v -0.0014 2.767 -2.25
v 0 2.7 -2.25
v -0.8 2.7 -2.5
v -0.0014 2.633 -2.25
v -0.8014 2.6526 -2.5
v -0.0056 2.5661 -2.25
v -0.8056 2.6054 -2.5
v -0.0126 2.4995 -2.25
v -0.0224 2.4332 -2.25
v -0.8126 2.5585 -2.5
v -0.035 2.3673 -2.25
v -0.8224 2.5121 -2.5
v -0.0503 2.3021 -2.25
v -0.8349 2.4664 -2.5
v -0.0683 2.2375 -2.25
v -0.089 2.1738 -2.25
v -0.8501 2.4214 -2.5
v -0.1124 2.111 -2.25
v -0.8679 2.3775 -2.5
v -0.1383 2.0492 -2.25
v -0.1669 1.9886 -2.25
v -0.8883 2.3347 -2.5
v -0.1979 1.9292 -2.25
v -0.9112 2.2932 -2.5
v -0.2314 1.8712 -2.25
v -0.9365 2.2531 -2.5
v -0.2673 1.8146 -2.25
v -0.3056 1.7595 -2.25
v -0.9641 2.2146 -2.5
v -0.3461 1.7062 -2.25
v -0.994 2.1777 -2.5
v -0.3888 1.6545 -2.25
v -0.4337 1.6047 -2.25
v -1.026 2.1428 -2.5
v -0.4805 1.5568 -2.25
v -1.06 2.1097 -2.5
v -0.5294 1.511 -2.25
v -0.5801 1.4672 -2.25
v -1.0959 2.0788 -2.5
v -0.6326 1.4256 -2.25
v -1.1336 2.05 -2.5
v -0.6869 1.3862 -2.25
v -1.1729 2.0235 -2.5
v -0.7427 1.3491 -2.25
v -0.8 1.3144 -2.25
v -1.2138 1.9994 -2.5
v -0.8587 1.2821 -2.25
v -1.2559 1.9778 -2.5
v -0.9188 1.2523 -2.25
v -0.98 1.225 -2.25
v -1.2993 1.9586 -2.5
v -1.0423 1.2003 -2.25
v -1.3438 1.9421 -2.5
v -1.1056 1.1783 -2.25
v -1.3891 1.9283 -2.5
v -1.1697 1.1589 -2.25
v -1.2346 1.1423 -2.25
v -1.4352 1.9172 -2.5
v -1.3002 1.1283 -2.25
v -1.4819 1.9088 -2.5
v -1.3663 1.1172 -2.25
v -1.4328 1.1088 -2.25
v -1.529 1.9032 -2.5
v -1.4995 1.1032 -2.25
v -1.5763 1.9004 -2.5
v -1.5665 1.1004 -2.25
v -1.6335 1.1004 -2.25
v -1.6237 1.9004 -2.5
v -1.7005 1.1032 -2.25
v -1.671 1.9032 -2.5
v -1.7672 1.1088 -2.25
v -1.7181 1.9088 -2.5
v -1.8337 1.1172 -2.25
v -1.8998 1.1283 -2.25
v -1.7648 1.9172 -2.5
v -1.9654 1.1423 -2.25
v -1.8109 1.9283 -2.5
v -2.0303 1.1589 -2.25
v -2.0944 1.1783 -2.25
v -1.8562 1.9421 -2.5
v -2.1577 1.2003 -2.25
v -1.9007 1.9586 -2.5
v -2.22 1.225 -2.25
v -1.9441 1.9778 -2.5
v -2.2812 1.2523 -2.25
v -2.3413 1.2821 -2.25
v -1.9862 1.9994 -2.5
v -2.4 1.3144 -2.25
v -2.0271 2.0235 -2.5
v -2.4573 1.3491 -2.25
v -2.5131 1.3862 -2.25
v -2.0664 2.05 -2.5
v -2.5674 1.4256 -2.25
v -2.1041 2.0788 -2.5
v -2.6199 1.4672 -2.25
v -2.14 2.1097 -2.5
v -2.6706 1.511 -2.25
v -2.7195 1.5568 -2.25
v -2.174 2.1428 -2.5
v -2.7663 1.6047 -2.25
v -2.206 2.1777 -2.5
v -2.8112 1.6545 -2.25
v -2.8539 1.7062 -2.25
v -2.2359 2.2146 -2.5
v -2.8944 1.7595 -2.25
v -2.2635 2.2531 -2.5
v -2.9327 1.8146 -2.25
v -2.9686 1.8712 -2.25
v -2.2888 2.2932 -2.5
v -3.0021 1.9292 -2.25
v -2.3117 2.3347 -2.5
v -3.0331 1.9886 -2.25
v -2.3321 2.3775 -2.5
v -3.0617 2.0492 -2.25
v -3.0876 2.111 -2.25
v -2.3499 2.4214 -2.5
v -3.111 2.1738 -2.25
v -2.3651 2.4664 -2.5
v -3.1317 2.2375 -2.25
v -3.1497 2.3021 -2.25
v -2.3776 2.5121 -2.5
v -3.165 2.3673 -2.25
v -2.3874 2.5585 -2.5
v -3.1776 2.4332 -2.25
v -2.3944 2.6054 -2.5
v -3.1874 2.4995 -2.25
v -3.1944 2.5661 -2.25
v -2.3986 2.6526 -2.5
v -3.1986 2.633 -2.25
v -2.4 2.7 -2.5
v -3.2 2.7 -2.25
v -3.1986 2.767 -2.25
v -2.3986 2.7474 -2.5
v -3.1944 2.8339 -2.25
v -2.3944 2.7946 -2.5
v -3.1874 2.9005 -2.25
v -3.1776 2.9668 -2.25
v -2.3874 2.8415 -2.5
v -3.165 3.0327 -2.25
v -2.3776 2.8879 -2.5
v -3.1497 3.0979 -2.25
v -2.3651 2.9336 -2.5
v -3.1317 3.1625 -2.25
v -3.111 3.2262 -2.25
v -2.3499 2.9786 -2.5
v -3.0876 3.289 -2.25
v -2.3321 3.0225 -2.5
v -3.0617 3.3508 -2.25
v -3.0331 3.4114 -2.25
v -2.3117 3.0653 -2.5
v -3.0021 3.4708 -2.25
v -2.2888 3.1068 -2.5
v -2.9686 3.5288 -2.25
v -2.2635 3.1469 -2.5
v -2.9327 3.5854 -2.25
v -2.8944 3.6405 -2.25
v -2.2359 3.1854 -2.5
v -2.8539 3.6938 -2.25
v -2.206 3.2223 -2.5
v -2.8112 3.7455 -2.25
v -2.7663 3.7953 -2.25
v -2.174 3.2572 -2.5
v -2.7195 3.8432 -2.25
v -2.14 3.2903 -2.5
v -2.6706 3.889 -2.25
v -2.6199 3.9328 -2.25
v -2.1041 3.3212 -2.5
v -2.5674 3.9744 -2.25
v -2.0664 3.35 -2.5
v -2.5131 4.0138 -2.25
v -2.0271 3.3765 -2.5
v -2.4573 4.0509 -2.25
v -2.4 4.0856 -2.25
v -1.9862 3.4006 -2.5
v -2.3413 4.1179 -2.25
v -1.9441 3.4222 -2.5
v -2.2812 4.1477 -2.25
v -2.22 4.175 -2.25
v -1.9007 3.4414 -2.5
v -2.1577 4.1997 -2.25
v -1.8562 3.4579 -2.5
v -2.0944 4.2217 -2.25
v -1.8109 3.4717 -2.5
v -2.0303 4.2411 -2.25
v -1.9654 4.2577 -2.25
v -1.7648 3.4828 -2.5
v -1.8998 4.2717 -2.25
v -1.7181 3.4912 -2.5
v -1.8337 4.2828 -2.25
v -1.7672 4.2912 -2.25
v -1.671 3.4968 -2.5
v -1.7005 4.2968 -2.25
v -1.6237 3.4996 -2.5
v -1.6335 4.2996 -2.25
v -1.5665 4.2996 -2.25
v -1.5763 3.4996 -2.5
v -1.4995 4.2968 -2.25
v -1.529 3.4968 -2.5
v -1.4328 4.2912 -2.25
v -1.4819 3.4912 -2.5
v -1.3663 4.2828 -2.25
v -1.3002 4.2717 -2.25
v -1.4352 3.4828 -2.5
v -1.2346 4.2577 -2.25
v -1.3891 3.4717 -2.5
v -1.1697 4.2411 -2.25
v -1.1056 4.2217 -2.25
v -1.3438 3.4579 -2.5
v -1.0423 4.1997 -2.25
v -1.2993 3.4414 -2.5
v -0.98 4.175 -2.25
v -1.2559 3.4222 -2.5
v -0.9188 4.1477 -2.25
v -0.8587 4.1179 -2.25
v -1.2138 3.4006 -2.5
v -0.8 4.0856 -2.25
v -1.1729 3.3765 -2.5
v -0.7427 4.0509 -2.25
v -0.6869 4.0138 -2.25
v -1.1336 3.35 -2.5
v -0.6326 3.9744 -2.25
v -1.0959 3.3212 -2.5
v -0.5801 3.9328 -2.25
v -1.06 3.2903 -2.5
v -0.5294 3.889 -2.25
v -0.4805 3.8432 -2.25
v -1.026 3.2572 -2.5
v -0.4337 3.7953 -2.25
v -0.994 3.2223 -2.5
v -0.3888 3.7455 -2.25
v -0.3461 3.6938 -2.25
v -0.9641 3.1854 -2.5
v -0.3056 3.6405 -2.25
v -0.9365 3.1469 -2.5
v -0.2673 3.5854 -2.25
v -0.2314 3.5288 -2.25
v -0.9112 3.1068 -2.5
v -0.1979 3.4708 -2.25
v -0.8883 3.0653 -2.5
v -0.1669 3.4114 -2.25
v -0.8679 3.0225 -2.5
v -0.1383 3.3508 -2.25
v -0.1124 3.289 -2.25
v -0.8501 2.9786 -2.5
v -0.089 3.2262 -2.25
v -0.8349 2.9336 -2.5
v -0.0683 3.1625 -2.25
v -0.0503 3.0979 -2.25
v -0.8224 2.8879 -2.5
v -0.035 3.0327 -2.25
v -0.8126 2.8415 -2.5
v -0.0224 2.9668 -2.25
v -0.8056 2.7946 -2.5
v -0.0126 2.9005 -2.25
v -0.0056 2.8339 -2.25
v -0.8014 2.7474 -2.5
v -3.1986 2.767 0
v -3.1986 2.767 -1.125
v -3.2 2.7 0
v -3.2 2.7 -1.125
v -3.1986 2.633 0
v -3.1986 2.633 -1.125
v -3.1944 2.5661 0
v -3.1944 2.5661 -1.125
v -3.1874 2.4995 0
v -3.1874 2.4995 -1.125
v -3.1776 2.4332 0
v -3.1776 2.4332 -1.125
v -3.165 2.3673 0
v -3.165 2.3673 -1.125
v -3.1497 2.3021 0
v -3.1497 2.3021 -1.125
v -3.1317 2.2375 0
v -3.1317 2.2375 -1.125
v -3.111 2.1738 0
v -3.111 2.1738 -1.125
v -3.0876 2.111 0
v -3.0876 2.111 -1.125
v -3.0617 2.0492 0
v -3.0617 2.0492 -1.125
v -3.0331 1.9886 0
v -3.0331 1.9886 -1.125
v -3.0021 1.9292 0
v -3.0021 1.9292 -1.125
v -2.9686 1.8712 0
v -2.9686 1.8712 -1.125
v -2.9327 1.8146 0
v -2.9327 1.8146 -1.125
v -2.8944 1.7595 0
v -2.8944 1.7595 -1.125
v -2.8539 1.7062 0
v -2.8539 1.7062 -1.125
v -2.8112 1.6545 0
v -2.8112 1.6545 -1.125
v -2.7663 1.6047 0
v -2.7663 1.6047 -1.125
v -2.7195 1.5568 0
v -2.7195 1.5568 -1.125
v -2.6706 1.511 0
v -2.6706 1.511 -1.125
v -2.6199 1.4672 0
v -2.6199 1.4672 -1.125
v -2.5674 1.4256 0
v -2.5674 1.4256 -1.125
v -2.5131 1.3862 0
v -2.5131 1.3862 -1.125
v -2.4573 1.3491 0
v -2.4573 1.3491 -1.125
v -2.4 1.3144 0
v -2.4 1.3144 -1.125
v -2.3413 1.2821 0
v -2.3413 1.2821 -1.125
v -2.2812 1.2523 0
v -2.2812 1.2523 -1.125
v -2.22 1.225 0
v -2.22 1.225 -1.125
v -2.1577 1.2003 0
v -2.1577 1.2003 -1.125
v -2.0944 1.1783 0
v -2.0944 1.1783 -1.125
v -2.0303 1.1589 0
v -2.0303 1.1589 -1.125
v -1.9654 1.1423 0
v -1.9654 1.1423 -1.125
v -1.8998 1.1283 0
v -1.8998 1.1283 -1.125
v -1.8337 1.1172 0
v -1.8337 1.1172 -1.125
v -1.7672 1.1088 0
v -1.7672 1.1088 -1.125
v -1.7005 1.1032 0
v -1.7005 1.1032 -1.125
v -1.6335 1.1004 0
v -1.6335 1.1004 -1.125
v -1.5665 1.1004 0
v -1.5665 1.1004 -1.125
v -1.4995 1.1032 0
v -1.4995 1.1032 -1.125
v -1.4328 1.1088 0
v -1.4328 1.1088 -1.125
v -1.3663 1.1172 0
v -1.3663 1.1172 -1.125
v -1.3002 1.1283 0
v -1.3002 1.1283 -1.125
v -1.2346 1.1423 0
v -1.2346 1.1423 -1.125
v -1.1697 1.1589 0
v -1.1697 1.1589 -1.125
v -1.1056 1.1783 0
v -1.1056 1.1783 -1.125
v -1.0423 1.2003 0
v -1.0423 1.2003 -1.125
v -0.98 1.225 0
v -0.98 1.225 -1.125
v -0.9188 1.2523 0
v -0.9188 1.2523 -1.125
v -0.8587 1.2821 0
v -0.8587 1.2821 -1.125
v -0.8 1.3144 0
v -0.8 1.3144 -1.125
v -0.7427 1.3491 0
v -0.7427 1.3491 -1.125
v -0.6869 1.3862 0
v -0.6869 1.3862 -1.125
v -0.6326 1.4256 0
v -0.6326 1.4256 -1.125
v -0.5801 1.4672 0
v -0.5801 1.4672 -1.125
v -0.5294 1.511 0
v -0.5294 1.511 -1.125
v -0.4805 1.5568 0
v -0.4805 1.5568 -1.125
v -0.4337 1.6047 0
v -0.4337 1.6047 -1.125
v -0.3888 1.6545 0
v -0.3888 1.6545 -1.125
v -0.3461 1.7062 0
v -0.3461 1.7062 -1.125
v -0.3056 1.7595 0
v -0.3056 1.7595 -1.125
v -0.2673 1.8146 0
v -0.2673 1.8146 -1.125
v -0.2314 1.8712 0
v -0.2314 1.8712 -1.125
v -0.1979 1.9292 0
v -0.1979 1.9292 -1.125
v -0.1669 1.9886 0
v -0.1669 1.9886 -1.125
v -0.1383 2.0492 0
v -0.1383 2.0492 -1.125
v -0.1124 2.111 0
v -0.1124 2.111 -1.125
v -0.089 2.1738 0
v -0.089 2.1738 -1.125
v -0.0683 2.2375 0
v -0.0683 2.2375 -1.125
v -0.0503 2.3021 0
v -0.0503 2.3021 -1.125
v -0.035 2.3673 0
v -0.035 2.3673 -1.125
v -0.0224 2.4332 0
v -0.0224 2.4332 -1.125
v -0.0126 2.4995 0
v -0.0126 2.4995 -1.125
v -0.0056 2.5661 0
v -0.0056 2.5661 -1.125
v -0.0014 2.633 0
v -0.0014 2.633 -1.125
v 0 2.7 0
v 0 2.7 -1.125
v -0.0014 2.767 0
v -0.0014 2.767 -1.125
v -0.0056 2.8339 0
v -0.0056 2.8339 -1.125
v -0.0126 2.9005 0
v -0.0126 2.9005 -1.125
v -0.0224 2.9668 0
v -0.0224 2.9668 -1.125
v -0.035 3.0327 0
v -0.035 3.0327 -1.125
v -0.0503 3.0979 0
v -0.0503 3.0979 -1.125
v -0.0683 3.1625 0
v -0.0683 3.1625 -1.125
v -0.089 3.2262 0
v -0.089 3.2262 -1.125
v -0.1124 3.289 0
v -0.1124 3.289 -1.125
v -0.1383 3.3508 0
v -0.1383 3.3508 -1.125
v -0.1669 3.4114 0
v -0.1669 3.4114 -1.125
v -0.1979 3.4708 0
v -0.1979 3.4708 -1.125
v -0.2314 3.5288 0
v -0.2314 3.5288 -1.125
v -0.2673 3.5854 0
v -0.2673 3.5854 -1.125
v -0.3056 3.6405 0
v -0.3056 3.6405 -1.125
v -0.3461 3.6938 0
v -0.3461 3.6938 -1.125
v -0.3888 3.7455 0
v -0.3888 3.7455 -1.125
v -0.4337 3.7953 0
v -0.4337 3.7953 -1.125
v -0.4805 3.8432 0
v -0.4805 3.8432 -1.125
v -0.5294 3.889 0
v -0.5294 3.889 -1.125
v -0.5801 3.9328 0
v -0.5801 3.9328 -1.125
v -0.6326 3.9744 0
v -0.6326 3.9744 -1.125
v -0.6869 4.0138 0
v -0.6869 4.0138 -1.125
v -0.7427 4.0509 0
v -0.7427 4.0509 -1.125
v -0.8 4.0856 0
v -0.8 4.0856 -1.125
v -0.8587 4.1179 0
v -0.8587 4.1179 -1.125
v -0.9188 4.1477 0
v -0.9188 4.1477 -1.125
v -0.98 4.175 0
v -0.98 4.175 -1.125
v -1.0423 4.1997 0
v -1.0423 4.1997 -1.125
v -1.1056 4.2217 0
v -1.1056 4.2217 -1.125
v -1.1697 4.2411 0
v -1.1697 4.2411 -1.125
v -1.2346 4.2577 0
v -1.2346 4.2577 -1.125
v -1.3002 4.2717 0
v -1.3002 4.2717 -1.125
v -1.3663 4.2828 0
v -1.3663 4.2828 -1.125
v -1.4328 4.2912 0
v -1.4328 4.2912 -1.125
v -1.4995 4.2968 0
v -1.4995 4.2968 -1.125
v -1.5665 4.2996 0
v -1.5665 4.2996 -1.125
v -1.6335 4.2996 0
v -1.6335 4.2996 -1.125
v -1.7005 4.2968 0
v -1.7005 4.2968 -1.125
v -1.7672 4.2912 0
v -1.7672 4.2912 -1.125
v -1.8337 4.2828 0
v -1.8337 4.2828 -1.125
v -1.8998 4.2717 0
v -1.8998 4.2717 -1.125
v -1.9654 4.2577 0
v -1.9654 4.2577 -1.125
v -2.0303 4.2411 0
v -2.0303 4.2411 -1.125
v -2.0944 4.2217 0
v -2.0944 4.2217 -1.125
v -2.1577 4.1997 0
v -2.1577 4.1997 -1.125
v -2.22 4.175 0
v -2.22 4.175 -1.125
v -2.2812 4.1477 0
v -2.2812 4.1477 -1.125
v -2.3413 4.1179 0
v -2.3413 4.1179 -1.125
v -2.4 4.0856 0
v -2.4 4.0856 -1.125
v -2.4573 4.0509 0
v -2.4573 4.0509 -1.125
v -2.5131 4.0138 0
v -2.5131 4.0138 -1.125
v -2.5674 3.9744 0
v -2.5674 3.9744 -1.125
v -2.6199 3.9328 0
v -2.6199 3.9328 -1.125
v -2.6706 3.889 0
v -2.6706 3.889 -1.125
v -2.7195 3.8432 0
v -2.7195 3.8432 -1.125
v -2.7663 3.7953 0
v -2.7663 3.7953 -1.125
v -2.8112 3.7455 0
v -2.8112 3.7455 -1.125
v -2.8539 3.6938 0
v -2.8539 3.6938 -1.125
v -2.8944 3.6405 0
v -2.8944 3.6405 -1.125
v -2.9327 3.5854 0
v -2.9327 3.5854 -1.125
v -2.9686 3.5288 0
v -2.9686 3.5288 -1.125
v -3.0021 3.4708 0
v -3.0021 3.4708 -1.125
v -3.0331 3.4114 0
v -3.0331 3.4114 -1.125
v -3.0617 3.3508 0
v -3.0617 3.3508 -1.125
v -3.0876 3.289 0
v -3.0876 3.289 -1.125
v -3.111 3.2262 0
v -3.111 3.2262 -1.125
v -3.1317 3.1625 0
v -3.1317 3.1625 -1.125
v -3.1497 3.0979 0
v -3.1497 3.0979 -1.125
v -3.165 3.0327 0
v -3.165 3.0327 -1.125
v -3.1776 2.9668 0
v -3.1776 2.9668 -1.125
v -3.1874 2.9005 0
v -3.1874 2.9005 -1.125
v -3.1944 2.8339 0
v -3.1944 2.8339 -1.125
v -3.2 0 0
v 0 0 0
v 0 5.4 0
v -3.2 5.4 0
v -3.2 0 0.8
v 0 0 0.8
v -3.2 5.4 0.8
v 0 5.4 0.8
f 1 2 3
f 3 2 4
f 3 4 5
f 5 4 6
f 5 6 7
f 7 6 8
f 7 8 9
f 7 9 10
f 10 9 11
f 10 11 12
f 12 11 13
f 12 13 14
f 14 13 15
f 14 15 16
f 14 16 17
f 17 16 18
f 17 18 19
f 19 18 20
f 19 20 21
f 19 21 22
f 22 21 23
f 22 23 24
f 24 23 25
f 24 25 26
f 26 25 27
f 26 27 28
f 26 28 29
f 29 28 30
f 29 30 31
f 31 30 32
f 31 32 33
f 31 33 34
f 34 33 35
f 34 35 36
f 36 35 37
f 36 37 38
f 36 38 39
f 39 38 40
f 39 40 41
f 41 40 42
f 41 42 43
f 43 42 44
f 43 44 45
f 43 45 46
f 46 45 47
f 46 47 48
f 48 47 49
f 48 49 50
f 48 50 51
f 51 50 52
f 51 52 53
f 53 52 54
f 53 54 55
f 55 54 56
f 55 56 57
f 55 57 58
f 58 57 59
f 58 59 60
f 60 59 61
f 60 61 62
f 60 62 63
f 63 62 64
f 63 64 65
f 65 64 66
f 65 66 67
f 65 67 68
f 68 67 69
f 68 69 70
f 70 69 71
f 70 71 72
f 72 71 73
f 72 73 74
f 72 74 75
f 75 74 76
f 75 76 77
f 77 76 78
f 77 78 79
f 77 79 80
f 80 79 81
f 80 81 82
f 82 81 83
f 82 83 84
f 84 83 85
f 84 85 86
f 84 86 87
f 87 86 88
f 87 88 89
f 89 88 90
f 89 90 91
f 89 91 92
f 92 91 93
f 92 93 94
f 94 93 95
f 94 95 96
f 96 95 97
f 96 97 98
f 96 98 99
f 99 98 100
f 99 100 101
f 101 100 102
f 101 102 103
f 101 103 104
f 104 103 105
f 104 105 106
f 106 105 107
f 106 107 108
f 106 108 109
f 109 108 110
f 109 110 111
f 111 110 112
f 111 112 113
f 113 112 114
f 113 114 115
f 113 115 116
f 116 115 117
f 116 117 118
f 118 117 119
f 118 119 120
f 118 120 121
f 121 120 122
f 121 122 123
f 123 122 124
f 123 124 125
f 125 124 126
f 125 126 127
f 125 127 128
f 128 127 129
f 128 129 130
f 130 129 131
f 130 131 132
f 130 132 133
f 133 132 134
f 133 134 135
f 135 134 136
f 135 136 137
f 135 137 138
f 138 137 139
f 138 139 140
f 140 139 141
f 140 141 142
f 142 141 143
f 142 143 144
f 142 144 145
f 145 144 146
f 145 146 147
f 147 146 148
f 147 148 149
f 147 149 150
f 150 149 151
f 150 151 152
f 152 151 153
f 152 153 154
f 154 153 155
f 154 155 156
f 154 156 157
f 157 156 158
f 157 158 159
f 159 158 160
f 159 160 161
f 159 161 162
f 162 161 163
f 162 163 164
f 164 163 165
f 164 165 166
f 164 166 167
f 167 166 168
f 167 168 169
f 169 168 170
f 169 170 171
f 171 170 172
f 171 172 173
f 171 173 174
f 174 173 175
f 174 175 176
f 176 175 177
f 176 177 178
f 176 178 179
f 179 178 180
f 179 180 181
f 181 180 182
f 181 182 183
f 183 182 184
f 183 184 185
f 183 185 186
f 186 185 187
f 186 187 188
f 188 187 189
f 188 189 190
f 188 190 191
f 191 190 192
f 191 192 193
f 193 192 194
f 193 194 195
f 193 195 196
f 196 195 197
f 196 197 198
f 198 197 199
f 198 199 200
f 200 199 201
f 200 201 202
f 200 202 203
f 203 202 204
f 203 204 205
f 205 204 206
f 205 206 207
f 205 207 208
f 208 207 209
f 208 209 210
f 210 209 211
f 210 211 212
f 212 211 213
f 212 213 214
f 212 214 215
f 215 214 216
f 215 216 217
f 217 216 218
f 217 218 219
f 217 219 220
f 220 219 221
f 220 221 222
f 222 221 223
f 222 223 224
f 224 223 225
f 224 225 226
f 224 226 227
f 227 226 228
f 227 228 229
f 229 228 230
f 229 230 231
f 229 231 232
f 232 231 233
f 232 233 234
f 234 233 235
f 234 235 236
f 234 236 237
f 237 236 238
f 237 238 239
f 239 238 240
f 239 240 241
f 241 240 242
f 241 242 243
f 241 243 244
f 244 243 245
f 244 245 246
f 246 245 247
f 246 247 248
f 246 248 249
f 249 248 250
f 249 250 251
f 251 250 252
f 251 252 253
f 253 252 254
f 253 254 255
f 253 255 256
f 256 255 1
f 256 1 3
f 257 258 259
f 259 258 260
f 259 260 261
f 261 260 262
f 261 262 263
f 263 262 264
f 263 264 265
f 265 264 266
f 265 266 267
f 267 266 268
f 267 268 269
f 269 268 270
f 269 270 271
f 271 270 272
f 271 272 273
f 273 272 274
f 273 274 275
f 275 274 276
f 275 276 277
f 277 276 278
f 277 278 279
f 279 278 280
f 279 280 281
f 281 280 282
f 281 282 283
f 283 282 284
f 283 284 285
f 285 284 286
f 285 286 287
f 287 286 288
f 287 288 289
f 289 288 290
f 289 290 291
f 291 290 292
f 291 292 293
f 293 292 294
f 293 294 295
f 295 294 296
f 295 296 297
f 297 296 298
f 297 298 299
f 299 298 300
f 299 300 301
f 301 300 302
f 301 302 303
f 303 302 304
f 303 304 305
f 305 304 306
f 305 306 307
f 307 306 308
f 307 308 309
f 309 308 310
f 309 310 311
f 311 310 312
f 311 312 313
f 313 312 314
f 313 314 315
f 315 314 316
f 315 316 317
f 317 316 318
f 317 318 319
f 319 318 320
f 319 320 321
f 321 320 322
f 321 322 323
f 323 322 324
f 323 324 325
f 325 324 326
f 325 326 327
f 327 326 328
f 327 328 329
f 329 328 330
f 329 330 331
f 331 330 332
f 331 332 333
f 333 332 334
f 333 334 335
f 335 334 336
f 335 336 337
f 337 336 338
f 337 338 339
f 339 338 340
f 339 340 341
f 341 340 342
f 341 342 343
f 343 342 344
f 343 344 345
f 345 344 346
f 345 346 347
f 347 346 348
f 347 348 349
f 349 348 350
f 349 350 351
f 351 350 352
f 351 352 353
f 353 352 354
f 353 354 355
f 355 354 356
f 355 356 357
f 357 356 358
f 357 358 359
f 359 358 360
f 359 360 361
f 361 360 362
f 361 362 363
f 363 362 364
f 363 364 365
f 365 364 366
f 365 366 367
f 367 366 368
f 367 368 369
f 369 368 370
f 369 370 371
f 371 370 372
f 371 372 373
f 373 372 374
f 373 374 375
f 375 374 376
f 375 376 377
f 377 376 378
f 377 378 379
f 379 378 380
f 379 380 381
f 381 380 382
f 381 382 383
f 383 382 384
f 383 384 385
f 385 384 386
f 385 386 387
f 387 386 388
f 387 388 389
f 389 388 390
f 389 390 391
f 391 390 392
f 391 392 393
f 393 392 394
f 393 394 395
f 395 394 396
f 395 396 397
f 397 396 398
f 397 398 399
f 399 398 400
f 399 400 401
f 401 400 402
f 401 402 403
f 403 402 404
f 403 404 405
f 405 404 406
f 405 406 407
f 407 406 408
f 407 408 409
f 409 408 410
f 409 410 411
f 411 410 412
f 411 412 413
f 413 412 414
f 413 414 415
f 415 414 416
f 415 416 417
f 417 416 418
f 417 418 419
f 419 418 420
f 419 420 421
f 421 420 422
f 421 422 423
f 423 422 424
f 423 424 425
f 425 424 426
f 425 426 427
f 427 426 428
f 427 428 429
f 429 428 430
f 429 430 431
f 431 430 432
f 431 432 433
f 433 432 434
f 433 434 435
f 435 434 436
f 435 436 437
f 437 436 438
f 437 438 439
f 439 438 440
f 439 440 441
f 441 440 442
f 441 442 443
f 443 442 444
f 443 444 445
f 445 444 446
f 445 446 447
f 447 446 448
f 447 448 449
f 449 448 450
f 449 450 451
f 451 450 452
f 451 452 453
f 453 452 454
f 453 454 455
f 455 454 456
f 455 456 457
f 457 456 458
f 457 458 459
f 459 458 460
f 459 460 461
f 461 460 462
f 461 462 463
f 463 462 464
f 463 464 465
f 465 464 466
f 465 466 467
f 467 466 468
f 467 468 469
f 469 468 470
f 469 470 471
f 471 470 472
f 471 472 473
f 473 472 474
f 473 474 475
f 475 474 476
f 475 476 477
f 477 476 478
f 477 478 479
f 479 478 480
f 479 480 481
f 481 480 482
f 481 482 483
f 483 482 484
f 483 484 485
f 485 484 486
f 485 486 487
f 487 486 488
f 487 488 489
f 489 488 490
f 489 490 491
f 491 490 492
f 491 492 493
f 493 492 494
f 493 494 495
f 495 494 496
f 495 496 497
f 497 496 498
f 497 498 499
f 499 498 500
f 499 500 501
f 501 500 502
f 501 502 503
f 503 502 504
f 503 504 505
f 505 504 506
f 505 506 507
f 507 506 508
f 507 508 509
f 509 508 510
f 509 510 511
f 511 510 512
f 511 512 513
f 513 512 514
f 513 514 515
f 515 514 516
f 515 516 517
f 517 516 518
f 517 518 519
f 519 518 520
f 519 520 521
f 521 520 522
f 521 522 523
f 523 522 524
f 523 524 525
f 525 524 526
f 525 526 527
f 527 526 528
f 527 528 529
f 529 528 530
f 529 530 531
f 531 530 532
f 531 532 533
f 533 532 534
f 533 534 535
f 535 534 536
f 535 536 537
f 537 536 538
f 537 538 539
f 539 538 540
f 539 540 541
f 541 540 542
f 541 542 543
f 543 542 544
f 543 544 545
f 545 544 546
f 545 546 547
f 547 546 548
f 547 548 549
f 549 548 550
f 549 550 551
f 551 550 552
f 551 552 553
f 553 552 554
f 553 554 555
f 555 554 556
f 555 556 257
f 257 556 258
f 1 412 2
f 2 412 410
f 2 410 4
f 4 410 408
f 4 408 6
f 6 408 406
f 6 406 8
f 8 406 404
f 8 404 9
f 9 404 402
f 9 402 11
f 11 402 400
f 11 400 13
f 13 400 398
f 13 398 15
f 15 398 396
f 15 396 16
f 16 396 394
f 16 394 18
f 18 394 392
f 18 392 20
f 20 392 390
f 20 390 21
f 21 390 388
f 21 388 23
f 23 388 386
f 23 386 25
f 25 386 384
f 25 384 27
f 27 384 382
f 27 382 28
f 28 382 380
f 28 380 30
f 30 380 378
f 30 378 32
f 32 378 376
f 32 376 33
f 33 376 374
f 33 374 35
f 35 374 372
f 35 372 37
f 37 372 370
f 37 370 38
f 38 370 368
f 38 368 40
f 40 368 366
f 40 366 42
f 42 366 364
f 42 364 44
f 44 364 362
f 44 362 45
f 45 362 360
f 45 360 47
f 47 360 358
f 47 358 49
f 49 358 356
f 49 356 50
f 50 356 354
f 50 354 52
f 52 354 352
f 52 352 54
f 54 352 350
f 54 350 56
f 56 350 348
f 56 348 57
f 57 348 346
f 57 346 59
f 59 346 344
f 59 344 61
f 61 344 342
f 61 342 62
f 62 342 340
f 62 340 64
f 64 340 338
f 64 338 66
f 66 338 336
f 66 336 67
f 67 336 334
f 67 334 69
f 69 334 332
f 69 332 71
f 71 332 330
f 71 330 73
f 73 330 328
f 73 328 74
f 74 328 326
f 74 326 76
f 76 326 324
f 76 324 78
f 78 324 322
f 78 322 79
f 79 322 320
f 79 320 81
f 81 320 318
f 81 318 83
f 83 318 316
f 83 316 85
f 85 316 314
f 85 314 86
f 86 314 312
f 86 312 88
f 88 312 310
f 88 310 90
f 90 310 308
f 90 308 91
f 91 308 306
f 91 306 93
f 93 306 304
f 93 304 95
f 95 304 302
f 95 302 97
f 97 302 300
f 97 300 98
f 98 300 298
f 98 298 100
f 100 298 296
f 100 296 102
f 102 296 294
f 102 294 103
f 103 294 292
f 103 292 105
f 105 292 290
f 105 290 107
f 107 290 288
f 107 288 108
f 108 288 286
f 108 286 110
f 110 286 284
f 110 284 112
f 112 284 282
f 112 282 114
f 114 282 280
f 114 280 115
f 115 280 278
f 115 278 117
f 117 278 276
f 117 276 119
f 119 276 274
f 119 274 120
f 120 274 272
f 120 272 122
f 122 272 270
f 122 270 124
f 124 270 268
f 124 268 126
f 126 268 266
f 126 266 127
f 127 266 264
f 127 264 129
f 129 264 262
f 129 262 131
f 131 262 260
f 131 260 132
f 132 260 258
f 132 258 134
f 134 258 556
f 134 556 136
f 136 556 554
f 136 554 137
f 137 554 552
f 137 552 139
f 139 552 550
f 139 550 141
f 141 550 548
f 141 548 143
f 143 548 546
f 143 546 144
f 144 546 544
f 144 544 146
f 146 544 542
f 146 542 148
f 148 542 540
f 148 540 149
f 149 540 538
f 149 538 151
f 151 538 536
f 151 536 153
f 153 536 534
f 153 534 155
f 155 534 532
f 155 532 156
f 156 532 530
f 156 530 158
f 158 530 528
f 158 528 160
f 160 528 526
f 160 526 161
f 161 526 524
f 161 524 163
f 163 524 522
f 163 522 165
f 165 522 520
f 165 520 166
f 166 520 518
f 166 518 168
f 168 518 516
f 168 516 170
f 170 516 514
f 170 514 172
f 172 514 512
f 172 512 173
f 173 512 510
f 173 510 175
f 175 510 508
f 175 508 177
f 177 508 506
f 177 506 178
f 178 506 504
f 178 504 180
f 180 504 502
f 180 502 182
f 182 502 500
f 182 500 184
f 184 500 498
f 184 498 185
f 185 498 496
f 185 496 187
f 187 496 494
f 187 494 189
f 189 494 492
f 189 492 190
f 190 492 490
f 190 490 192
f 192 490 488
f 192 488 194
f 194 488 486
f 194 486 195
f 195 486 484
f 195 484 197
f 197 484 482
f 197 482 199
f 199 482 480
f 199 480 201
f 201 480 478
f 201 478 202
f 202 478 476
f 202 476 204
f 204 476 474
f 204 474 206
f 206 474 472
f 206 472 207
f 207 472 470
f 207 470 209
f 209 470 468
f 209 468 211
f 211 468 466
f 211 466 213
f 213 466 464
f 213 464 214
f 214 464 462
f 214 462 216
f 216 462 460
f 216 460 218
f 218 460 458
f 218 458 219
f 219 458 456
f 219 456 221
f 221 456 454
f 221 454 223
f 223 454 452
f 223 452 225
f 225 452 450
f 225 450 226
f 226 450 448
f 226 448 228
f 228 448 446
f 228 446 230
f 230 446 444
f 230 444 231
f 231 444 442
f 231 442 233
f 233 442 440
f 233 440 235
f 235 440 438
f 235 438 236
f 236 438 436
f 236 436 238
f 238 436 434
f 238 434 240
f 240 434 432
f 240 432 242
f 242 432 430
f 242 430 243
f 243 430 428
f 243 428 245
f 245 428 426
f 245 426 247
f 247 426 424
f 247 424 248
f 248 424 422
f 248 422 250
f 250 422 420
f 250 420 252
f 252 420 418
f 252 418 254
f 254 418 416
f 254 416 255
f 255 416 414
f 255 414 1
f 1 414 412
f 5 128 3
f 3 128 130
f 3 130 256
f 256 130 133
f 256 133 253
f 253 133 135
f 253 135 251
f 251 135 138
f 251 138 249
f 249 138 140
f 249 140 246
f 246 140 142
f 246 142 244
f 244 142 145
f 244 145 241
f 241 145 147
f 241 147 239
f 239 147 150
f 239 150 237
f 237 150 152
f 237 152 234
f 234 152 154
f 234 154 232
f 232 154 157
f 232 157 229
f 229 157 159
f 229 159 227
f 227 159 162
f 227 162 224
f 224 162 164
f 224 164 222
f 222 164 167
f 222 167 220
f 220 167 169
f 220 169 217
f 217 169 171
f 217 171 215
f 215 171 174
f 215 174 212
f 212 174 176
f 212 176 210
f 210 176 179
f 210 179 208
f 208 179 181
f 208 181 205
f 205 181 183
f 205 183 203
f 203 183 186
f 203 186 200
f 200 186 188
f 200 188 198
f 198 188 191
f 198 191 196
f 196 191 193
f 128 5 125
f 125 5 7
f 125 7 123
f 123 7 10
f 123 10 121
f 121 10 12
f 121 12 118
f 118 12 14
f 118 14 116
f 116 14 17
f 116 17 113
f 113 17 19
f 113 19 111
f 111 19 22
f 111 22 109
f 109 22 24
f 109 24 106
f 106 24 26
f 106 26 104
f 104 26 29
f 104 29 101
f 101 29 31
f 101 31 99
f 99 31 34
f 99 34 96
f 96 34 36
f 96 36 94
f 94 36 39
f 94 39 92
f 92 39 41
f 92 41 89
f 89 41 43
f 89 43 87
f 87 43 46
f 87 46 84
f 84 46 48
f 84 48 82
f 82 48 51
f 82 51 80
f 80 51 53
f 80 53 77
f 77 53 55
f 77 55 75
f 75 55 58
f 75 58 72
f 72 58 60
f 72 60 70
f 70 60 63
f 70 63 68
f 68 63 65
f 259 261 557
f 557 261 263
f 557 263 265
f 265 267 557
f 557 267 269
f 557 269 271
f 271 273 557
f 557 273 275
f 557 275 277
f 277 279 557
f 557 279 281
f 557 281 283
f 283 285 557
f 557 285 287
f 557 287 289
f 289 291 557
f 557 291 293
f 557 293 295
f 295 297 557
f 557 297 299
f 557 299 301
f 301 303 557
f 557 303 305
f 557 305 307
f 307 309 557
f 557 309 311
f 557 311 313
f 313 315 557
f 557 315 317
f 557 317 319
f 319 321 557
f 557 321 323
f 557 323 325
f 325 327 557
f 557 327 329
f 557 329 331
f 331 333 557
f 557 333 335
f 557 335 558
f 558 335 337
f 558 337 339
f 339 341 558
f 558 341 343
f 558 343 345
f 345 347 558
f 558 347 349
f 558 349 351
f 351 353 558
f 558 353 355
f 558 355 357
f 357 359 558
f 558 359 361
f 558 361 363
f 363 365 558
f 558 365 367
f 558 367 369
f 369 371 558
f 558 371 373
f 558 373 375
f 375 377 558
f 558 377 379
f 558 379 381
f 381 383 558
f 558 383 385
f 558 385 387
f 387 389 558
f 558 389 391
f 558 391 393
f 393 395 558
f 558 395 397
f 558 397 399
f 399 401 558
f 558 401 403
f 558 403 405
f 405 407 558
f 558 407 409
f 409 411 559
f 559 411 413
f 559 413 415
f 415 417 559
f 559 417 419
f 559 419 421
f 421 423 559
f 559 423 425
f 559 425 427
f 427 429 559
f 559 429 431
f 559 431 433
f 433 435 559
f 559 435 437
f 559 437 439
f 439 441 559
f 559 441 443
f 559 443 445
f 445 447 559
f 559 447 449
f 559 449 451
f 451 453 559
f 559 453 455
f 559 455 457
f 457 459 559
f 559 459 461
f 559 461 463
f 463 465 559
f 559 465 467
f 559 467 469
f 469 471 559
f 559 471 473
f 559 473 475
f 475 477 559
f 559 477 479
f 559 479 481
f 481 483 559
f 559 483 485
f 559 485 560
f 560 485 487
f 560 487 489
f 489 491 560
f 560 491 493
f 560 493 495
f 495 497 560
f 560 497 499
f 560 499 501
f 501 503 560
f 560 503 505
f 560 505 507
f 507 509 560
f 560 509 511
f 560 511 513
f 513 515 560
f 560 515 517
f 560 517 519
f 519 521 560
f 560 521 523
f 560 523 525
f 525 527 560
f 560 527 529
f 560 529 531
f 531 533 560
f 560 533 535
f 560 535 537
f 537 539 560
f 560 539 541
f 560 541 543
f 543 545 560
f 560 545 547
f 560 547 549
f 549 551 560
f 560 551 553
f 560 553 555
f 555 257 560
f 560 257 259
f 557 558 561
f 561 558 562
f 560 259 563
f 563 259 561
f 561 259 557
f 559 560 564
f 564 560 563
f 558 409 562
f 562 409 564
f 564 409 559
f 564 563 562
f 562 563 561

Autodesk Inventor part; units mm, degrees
ref_plane "YZ Plane" through (0, 0, 0) normal (1, 0, 0) x (0, 1, 0)
ref_plane "XZ Plane" through (0, 0, 0) normal (0, 1, 0) x (-1, 0, 0)
ref_plane "XY Plane" through (0, 0, 0) normal (0, 0, 1) x (1, 0, 0)
sketch "Sketch1" plane through (0, 0, 0) normal (0, 0, 1) x (1, 0, 0)
  line L0 (0, 0) -> (-3.2, 0)
  line L1 (-3.2, 0) -> (-3.2, 5.4)
  line L2 (-3.2, 5.4) -> (0, 5.4)
  line L3 (0, 5.4) -> (0, 0)
  circle A0 centre (-1.6, 2.7) radius 1.2
  line L4 (0, 2.7) -> (-1.6, 2.7)
  circle A1 centre (-1.6, 2.7) radius 1.6
  line L5 (-1.6, 2.7) -> (-3.2, 2.7)
  point P0 (-2.2, 1.7802)
  point P1 (0, 2.7)
  point P2 (0, 1.7802)
  dimension "d0" = 3.2
  dimension "d1" = 5.4
  dimension "d9" = 3.2
  dimension "d10" = 0.4
extrude "Extrusion1" add sketch "Sketch1" along normal blind 0.8
extrude "Extrusion2" add sketch "Sketch1" against normal blind 2.5 contours A1 L5 A0 L4 | L4 A0 L5 A1 | L4 L5 A0 | A0 L5 L4
chamfer "Chamfer1" distance 0.8 distance2 0.25 1 edges at (-3.2, 2.7, -2.5) measured on face at (-1.6496, 3.1082, -2.5)
properties part number "ButtonInsert"
